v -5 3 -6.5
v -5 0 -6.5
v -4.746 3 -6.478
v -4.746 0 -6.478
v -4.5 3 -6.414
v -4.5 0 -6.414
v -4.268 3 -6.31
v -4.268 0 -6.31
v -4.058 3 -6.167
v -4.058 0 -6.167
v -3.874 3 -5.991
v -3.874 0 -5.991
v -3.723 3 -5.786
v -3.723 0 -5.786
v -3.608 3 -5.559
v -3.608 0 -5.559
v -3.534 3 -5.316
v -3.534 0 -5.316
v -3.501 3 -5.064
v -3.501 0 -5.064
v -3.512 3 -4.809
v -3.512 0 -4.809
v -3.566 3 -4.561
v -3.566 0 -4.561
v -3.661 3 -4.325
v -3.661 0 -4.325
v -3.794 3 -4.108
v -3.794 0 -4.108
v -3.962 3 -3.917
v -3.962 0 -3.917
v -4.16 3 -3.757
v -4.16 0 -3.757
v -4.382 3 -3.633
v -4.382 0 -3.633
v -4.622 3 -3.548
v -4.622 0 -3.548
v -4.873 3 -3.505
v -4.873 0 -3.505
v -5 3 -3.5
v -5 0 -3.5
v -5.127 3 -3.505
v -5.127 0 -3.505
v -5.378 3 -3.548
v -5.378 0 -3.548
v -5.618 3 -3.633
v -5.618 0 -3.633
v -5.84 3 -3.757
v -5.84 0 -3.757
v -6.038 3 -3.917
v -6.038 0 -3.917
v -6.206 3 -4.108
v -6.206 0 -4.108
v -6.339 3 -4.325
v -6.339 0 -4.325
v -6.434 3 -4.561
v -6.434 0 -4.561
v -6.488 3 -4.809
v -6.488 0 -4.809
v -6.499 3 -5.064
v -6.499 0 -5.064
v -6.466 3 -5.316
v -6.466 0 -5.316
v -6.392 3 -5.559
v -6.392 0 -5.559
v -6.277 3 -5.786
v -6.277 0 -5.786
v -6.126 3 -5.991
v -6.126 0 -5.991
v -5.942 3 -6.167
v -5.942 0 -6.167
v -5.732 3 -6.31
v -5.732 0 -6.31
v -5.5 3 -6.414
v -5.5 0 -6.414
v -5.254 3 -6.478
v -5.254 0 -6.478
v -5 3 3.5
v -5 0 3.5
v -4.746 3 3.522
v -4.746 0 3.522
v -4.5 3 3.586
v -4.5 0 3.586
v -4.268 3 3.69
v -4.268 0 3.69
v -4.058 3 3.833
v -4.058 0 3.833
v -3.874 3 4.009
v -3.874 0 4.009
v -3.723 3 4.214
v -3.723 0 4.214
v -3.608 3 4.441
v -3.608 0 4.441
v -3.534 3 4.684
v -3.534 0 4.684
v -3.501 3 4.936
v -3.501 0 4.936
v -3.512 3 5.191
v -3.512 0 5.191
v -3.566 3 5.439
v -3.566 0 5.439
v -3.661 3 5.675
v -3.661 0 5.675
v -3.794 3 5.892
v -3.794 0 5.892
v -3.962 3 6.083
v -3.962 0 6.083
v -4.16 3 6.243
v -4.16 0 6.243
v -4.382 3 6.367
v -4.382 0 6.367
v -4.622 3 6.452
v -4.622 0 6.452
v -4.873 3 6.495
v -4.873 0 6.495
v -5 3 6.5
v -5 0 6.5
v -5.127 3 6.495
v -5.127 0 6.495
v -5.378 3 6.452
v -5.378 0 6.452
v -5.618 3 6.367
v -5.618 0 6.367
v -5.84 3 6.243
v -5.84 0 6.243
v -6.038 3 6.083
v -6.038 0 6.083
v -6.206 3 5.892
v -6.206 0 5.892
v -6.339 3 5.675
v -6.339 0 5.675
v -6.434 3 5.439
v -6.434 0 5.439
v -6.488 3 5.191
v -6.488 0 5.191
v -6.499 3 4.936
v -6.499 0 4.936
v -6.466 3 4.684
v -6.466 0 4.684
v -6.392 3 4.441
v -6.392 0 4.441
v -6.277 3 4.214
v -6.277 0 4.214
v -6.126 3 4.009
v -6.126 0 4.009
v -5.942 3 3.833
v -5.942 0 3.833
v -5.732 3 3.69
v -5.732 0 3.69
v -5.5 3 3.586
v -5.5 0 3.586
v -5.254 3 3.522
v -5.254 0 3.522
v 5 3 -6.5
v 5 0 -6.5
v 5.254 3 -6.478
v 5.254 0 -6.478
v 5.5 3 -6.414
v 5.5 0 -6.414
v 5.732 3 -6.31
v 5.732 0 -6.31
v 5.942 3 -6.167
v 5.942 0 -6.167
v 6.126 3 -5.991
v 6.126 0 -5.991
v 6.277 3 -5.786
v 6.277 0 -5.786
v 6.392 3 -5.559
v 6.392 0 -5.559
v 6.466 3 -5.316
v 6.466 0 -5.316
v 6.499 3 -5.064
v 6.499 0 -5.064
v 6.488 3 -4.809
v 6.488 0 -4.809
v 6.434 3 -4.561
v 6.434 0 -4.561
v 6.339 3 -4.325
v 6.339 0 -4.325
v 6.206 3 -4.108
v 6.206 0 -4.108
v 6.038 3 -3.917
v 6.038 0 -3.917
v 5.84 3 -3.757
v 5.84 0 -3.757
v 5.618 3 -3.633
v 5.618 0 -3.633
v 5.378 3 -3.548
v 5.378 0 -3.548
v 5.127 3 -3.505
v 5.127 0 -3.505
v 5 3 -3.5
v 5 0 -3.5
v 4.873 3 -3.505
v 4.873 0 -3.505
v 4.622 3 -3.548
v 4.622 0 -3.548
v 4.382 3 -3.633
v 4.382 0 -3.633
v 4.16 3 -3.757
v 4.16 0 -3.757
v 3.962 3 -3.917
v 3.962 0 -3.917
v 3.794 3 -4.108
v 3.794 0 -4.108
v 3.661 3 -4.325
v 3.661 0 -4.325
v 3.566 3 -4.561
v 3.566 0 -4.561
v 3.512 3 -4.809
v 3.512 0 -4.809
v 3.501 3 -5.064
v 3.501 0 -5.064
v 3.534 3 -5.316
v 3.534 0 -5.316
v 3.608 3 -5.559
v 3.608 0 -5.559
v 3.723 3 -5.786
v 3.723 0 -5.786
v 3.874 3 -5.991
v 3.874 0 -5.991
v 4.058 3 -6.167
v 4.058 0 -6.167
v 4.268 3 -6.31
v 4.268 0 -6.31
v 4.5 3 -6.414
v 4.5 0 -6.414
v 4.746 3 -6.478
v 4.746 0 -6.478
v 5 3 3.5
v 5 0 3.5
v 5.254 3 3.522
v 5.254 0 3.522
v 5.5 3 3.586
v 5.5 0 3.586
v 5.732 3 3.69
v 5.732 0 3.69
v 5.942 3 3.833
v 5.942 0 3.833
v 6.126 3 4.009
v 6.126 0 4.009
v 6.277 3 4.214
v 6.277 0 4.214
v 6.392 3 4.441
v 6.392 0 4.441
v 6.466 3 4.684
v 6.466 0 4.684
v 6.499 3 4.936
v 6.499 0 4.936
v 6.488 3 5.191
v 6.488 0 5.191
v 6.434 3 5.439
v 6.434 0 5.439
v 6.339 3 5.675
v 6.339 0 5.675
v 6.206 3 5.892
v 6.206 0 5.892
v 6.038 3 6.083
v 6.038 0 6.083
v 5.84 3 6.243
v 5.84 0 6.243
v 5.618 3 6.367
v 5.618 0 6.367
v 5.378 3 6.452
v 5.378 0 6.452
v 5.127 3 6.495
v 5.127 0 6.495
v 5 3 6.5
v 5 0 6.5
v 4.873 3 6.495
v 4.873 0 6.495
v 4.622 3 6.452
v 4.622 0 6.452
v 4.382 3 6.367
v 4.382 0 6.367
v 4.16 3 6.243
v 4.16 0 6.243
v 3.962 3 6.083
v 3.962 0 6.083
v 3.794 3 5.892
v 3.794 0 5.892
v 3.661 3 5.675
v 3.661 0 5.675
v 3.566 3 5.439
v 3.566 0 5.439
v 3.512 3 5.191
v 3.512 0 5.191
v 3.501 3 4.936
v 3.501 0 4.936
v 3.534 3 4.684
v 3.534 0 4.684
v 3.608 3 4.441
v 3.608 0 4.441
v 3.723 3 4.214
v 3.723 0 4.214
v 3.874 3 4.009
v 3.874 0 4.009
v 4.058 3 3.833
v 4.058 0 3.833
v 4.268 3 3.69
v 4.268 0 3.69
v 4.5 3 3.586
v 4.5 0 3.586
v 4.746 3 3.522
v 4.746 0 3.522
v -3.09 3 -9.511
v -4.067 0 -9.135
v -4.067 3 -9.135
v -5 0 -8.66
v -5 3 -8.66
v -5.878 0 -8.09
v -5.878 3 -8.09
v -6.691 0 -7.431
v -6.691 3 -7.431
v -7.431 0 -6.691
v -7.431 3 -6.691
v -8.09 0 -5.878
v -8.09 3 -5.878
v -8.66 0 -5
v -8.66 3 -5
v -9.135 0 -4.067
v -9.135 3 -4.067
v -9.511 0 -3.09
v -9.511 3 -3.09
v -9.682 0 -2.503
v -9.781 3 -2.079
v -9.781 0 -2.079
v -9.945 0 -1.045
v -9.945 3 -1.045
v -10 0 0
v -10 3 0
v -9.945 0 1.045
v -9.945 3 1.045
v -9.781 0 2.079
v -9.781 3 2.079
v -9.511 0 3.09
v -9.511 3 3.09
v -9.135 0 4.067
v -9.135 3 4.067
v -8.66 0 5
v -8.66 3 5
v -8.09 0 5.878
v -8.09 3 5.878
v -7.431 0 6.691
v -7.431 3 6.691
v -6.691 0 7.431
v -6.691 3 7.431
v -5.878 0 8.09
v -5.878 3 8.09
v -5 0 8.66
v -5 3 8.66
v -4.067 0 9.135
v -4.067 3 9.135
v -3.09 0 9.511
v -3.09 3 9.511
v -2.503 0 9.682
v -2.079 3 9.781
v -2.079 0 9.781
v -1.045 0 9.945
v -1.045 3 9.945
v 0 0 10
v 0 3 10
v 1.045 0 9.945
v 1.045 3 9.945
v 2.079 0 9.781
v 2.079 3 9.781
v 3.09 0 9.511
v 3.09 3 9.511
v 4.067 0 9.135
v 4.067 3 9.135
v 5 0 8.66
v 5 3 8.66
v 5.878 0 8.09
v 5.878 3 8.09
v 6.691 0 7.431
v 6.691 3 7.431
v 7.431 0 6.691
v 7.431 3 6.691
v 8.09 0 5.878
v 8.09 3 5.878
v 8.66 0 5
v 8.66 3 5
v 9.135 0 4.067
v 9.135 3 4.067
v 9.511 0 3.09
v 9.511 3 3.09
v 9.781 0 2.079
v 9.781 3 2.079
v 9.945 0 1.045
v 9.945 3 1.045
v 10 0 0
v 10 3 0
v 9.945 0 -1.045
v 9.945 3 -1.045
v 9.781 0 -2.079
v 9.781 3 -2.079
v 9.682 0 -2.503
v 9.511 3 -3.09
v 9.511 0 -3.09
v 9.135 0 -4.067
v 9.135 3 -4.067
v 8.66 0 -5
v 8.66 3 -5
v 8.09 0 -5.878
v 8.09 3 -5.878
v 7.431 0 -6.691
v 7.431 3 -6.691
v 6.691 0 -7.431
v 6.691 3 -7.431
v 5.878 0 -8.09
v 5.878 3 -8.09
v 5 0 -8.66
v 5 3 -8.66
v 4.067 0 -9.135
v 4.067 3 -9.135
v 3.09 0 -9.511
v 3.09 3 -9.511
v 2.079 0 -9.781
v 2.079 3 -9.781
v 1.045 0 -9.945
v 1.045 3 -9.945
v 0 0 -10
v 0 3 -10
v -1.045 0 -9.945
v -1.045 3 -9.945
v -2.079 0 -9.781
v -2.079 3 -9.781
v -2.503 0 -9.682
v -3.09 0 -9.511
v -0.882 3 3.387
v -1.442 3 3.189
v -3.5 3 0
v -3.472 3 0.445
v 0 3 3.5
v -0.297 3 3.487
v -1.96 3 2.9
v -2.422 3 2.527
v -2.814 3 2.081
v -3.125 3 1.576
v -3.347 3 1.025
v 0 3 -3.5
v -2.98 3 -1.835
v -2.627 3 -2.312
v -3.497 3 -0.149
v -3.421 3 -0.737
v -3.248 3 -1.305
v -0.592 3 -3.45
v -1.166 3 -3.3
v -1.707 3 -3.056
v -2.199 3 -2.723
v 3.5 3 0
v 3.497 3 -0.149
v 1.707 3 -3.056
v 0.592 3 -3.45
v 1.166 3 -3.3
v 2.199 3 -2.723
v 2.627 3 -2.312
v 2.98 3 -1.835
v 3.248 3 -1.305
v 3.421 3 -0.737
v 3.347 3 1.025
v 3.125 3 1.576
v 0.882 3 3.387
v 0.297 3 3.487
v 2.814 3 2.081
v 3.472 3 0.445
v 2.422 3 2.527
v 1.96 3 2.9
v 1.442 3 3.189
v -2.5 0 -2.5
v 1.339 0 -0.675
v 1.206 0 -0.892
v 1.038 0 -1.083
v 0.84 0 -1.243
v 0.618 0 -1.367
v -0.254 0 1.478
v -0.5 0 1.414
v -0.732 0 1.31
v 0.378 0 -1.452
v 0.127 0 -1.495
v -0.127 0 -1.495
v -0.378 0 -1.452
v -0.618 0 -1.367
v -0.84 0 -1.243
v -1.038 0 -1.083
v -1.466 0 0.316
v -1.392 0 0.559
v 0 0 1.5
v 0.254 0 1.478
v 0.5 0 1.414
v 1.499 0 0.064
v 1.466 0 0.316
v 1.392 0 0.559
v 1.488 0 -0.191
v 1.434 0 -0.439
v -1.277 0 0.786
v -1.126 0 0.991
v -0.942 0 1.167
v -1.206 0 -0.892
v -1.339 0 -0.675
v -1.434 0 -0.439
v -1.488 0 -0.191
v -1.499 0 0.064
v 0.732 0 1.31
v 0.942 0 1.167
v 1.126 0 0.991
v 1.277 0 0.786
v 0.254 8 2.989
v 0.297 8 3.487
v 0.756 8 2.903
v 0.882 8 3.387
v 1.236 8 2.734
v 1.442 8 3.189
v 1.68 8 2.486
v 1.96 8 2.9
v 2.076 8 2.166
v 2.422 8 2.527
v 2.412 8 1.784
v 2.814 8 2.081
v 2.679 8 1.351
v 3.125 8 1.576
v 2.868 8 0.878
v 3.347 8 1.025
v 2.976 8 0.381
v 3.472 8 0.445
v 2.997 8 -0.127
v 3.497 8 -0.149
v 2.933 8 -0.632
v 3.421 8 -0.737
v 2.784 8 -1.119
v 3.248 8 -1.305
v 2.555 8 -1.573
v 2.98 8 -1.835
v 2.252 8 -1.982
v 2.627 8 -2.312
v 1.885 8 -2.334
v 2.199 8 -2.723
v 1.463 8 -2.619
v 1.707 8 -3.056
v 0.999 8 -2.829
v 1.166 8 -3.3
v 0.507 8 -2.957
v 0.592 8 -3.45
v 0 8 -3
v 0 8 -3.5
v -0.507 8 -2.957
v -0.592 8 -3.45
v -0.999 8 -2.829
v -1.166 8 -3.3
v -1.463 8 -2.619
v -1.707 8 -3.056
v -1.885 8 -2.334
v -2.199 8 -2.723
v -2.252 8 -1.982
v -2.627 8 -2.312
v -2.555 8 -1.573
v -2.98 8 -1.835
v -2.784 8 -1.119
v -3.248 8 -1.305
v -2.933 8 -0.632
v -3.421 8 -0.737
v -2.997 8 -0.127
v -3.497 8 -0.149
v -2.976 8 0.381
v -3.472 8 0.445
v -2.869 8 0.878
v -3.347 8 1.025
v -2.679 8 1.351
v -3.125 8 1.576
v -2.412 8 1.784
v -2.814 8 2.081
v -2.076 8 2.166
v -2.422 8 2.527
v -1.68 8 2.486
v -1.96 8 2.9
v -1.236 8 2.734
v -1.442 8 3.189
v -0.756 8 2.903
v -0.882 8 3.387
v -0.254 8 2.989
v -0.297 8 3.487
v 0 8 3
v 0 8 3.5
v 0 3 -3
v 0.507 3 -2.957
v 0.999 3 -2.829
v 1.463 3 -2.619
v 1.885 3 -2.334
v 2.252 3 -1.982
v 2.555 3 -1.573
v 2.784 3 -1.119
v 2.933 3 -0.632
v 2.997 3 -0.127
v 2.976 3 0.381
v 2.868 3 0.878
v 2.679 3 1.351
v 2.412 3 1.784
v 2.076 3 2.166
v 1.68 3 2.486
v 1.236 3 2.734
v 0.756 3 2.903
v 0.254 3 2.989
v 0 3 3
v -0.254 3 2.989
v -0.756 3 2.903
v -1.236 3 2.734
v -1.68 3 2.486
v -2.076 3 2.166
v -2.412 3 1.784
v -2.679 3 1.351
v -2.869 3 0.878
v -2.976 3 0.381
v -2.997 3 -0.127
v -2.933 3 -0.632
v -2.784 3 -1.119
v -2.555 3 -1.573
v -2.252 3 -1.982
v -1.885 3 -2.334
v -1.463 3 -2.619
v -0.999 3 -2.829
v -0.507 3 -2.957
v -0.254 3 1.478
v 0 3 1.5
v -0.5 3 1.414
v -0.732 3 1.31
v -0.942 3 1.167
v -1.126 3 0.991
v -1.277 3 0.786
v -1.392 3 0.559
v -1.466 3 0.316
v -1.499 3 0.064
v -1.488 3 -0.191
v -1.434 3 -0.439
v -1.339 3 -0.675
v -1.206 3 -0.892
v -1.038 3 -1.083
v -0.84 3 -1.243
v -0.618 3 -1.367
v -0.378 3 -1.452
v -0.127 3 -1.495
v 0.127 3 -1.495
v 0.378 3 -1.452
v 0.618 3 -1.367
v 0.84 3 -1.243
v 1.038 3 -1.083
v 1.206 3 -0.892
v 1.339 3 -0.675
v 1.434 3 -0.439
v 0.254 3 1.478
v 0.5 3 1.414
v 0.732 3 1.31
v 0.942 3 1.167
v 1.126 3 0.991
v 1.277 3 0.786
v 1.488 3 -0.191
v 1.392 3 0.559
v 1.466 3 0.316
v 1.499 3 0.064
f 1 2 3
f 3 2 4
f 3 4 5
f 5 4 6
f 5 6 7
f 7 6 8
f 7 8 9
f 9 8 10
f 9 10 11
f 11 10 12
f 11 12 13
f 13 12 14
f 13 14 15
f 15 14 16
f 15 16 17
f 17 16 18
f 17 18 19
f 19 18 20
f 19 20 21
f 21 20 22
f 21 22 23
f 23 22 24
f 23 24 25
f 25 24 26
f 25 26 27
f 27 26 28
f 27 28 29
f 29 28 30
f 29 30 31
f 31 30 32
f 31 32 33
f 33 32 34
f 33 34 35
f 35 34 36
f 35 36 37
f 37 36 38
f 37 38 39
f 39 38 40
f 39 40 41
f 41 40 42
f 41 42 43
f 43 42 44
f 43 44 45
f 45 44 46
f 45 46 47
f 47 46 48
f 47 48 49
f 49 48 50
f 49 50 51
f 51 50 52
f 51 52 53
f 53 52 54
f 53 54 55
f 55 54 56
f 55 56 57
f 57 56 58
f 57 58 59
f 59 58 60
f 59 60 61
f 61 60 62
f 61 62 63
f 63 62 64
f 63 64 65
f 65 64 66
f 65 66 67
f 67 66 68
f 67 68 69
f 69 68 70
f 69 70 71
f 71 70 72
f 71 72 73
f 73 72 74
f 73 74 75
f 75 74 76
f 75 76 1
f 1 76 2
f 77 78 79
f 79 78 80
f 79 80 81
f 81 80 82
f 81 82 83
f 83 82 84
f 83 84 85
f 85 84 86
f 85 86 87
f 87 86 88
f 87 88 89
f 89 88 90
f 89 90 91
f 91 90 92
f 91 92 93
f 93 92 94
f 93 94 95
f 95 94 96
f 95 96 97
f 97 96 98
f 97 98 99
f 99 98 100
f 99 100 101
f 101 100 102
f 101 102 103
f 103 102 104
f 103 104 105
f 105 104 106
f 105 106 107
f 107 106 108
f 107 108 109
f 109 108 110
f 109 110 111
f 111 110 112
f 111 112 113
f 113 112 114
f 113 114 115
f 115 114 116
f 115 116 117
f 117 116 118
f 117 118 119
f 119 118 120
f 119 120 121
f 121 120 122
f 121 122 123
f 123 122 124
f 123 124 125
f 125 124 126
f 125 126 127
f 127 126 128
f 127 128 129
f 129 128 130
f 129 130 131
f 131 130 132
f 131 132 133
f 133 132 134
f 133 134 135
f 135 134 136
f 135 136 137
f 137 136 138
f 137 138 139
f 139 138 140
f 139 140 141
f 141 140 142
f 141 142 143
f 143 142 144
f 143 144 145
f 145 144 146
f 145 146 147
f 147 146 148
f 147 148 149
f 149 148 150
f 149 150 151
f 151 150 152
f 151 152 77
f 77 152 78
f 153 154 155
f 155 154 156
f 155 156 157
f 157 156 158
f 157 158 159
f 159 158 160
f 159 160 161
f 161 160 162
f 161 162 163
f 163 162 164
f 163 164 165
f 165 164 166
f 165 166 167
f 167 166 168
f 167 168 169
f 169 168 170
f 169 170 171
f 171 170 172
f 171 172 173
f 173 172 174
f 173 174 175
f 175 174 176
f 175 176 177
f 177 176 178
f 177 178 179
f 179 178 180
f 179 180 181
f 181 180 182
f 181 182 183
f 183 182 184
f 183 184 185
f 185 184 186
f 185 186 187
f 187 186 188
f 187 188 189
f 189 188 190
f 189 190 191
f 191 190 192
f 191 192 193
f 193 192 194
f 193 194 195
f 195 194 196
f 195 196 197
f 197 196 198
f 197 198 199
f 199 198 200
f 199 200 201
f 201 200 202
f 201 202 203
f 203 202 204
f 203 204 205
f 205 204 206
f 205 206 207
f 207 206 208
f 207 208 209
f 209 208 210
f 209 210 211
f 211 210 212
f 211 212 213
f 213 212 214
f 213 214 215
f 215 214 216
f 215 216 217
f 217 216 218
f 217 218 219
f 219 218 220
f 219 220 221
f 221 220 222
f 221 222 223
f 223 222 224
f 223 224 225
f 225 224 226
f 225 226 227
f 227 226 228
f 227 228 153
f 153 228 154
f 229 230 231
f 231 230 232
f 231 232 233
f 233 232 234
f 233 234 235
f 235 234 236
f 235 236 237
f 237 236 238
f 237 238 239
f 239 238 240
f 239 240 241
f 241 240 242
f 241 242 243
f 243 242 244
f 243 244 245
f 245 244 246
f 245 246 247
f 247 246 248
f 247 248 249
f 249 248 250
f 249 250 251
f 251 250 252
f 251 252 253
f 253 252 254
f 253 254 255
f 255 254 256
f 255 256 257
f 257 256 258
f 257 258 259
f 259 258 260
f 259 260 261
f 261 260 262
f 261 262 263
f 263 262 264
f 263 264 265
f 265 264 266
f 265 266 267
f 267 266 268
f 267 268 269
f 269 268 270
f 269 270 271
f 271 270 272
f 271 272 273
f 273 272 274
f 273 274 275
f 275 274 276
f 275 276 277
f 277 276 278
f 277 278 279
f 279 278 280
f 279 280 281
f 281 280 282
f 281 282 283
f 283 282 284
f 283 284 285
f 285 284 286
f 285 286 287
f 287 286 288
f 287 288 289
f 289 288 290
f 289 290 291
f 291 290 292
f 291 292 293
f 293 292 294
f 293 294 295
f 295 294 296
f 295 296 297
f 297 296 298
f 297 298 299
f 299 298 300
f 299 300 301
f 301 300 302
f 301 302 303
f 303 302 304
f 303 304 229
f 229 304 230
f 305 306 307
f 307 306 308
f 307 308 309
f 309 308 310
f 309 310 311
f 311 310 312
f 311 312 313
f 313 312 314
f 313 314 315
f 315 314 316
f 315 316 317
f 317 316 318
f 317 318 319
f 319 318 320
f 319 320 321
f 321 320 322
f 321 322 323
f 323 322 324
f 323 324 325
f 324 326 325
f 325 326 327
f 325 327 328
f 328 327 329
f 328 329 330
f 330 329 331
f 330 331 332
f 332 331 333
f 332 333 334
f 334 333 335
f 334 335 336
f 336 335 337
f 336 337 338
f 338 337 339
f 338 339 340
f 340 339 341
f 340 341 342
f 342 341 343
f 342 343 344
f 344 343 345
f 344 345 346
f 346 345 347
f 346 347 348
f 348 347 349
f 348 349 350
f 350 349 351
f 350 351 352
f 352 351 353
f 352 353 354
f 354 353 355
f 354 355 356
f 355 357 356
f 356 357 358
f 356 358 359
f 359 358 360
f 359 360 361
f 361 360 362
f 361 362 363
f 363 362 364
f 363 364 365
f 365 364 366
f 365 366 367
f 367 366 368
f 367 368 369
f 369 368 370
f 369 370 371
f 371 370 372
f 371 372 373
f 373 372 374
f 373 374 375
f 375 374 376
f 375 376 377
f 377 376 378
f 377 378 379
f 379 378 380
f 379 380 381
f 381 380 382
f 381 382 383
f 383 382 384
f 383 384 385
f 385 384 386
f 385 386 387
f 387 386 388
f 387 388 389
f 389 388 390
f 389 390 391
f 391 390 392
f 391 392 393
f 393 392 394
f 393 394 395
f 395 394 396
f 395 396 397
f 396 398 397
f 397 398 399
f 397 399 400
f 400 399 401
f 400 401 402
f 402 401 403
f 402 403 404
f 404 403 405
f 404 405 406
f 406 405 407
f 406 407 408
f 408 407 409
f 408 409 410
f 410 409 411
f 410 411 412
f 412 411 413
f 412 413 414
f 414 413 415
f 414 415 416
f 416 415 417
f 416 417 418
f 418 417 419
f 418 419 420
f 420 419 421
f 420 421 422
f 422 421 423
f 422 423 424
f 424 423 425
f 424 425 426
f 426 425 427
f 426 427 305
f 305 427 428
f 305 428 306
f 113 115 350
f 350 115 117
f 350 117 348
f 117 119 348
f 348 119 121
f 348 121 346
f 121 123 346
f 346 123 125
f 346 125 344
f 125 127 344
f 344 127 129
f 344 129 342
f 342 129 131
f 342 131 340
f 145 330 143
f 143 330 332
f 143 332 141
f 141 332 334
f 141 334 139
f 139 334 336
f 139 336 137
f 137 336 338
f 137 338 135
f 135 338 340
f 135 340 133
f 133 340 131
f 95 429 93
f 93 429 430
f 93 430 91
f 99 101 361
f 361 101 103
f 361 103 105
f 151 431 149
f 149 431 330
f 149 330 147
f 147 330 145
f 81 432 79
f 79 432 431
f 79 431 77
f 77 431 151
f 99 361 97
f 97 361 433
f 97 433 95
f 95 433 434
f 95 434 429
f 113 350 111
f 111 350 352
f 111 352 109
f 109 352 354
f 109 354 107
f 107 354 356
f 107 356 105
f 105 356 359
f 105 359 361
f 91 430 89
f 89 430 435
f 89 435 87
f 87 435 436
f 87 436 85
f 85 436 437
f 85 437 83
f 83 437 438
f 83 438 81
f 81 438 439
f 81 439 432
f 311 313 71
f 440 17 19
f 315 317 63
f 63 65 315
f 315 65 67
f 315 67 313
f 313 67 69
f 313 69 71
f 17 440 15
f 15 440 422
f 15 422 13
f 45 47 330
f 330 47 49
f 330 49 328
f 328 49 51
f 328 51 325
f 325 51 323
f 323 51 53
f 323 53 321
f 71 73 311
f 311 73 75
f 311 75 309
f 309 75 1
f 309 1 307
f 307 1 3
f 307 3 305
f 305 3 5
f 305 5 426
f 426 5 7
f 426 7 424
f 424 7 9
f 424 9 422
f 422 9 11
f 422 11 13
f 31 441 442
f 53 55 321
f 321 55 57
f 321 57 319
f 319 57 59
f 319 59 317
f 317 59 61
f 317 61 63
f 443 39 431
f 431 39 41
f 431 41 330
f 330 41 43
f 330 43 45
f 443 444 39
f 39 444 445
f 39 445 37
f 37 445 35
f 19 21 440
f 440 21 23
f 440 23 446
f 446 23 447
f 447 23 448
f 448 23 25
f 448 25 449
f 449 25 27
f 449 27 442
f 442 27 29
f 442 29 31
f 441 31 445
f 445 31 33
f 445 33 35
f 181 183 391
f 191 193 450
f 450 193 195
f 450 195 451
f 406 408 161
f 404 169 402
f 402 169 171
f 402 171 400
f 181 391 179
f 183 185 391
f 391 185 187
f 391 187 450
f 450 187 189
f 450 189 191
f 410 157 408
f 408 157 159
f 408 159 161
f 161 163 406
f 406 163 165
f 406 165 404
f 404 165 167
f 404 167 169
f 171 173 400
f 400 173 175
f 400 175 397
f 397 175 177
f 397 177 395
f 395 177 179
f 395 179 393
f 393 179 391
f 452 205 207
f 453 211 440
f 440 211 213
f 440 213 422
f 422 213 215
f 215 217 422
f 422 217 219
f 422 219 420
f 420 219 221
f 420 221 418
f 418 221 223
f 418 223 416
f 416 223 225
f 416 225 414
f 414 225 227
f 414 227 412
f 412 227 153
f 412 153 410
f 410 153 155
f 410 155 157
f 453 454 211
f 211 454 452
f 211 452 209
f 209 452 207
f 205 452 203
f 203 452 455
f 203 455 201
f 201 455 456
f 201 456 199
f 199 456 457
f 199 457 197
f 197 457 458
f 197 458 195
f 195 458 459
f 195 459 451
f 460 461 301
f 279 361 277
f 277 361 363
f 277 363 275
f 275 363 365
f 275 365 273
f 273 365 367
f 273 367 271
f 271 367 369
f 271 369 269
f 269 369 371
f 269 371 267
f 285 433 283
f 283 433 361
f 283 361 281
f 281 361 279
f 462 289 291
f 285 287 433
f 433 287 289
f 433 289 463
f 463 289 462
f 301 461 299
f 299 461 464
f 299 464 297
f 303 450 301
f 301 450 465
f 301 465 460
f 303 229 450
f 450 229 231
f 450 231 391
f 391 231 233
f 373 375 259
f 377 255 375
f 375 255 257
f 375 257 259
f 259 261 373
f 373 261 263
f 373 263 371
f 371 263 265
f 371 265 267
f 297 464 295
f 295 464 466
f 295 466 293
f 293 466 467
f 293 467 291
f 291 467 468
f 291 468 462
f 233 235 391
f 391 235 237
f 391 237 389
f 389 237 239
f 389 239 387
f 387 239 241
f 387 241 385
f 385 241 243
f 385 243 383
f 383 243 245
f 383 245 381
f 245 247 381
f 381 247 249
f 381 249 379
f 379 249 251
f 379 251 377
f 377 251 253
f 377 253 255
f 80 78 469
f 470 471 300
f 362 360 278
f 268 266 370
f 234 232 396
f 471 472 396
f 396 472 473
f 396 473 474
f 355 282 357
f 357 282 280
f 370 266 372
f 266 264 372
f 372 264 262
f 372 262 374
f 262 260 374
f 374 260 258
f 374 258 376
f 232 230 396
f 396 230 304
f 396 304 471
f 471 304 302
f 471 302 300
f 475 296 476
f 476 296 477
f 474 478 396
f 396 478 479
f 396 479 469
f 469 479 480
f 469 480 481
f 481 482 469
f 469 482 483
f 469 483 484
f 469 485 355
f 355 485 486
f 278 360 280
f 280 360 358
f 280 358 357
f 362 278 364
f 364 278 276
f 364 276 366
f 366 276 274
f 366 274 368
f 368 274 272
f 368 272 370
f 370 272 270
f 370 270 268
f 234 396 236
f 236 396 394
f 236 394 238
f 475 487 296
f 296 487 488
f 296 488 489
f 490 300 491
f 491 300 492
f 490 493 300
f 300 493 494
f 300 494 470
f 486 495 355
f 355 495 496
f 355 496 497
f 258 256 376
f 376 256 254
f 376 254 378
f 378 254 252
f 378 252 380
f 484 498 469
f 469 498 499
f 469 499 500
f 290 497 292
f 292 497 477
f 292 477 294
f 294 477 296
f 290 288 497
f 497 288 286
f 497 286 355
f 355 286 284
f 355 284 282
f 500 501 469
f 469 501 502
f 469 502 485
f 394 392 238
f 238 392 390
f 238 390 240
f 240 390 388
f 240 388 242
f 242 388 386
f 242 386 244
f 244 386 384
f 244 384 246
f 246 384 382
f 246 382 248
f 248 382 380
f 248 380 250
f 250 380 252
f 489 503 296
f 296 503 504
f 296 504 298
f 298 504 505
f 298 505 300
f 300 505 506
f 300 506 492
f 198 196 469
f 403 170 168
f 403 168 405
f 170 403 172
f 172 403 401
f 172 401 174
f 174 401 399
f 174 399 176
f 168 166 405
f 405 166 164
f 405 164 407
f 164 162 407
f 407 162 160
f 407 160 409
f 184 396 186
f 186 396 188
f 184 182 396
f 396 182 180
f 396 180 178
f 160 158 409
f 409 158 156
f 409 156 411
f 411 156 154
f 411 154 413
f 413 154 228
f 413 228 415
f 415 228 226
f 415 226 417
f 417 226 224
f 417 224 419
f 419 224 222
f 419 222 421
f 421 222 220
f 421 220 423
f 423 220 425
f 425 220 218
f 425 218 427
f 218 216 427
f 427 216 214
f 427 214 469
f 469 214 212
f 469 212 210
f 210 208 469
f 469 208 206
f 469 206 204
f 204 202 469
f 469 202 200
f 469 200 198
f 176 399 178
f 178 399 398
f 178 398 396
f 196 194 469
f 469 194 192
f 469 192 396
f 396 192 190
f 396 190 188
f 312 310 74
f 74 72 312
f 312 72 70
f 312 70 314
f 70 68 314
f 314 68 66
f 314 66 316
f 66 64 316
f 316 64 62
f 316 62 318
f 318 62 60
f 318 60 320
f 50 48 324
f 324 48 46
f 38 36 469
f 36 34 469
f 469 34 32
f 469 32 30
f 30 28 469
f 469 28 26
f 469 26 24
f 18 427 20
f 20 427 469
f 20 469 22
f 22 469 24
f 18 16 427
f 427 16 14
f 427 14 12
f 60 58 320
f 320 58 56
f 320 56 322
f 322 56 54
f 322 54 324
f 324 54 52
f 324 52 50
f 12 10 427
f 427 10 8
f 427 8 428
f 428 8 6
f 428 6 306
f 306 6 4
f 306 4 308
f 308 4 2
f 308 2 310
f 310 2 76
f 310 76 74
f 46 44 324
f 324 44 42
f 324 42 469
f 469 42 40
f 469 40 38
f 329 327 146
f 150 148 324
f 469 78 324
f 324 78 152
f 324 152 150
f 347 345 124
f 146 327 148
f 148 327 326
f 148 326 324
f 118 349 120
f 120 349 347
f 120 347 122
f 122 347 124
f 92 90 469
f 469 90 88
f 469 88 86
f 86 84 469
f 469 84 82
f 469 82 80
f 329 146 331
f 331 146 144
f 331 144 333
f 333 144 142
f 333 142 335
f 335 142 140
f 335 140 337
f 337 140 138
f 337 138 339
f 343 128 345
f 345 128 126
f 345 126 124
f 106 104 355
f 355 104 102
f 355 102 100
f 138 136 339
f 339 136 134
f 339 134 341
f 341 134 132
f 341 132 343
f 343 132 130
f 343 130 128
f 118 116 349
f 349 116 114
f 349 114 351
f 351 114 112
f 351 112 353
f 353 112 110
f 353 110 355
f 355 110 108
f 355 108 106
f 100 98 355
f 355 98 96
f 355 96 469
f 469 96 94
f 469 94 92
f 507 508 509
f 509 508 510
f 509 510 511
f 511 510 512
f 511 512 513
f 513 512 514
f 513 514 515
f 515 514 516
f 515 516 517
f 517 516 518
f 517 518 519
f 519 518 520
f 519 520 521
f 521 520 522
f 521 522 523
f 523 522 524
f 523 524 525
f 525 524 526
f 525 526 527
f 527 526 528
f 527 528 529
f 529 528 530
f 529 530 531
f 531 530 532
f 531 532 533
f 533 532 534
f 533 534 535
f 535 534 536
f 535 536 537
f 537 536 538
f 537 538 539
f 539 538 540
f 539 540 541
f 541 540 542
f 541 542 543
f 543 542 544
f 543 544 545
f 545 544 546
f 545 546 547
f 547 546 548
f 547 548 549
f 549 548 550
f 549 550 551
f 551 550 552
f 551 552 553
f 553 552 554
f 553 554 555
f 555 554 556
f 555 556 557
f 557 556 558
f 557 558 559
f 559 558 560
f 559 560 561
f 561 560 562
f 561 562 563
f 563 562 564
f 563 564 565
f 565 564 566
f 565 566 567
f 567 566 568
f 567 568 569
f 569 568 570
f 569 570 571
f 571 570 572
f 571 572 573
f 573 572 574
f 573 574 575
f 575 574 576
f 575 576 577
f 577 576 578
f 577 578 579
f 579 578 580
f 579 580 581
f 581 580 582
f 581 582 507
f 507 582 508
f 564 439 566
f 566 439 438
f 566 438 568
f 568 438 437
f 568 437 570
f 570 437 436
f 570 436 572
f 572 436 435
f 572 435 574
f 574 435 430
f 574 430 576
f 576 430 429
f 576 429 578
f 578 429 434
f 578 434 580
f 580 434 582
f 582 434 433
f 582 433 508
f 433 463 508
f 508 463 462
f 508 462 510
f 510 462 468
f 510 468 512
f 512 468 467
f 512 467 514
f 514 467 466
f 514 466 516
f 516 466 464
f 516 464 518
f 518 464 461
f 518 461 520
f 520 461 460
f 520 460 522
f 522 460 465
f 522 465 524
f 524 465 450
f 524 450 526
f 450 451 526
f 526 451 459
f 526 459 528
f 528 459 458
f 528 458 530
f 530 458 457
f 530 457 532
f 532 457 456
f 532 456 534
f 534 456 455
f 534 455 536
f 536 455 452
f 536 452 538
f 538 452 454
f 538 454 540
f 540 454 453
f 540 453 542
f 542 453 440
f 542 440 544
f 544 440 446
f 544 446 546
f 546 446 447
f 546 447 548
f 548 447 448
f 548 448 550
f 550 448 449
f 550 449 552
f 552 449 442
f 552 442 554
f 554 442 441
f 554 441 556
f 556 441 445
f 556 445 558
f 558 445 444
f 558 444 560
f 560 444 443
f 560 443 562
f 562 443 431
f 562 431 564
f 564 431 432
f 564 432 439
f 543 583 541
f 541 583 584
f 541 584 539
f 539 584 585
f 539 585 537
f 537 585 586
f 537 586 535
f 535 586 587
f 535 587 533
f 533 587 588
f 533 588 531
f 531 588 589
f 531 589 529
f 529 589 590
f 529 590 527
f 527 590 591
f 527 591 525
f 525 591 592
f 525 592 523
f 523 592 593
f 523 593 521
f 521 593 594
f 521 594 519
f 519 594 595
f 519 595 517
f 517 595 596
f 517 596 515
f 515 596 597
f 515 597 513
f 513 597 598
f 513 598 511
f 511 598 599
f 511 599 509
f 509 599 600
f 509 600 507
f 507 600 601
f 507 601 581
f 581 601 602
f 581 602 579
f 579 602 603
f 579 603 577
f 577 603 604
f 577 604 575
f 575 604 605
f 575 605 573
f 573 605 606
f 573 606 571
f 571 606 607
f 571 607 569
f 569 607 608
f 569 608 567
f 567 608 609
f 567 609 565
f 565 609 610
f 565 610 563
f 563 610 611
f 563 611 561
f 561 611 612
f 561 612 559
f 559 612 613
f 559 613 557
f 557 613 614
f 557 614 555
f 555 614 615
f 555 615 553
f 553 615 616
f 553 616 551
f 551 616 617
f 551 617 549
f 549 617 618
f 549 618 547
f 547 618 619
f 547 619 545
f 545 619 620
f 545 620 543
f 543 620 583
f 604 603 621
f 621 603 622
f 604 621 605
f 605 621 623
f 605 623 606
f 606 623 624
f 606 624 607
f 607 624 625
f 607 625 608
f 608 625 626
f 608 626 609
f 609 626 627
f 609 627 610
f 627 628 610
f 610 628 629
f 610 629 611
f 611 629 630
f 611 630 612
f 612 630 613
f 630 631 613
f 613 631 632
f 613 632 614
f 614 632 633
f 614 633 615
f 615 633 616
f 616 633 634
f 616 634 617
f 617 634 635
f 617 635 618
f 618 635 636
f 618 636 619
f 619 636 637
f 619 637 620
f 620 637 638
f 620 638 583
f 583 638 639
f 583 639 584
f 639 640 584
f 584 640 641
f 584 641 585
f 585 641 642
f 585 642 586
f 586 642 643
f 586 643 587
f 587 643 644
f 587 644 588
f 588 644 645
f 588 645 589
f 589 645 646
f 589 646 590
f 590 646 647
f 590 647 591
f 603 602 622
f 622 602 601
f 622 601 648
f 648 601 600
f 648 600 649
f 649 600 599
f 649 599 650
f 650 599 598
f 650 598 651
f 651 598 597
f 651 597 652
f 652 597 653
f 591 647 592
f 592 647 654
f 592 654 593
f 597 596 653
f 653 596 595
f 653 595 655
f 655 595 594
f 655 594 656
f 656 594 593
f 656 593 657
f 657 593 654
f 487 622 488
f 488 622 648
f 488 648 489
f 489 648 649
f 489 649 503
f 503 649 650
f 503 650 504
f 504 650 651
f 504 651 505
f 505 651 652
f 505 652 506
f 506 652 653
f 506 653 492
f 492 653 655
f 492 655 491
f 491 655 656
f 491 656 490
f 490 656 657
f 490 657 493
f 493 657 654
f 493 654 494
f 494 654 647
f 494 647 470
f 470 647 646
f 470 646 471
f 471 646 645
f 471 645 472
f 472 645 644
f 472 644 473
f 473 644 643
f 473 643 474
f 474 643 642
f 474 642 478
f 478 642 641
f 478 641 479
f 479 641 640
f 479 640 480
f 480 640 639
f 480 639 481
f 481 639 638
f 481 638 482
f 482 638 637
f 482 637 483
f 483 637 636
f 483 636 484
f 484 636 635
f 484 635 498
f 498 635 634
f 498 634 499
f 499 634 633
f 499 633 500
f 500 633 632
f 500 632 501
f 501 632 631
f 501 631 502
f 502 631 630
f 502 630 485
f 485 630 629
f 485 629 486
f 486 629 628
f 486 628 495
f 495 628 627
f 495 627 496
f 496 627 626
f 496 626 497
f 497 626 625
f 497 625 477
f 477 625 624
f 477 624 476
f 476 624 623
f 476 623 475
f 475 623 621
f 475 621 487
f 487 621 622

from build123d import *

# Parameters (mm, degrees)
SKETCH_1_R          = 10
SKETCH_1_R_2        = 1.5
EXTRUDE_1_DEPTH     = 3
SKETCH_2_R          = 3.5
SKETCH_2_R_2        = 3
EXTRUDE_2_DEPTH     = 5
SKETCH_3_R          = 1.5
CUT_EXTRUDE_1_DEPTH = 5


with BuildPart() as part:
    # 草图1 → 凸台-拉伸1 (new body)
    with BuildSketch(Plane(origin=(0, 0, 0), x_dir=(1, 0, 0), z_dir=(0, 1, 0))):
        with Locations(Location((0, 0, 0), (0, 0, 270))):
            Circle(SKETCH_1_R)
        with Locations(Location((-5, 5, 0), (0, 0, 270))):
            Circle(SKETCH_1_R_2, mode=Mode.SUBTRACT)
        with Locations(Location((5, 5, 0), (0, 0, 270))):
            Circle(SKETCH_1_R_2, mode=Mode.SUBTRACT)
        with Locations(Location((5, -5, 0), (0, 0, 270))):
            Circle(SKETCH_1_R_2, mode=Mode.SUBTRACT)
        with Locations(Location((-5, -5, 0), (0, 0, 270))):
            Circle(SKETCH_1_R_2, mode=Mode.SUBTRACT)
    extrude(amount=EXTRUDE_1_DEPTH)

    # 草图2 → 凸台-拉伸2 (add)
    with BuildSketch(Plane(origin=(0, 3, 0), x_dir=(1, 0, 0), z_dir=(0, 1, 0))):
        with Locations(Location((0, 0, 0), (0, 0, 270))):
            Circle(SKETCH_2_R)
        with Locations(Location((0, 0, 0), (0, 0, 270))):
            Circle(SKETCH_2_R_2, mode=Mode.SUBTRACT)
    extrude(amount=EXTRUDE_2_DEPTH)

    # 草图3 → 切除-拉伸1 (cut)
    with BuildSketch(Plane(origin=(0, 3, 0), x_dir=(1, 0, 0), z_dir=(0, 1, 0))):
        with Locations(Location((0, 0, 0), (0, 0, 270))):
            Circle(SKETCH_3_R)
    extrude(amount=-CUT_EXTRUDE_1_DEPTH, mode=Mode.SUBTRACT)


solid = part.part
